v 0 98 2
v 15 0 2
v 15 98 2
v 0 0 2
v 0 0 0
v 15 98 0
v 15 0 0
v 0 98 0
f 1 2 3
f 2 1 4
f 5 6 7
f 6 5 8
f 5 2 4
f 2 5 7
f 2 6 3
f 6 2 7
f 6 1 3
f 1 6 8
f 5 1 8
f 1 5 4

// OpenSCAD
echo(version=version());

$wall_thickness = 2;
$fn = 50;

// Variables
depth = 15;
card_space_width = 98;

cube([depth, card_space_width, $wall_thickness]);
